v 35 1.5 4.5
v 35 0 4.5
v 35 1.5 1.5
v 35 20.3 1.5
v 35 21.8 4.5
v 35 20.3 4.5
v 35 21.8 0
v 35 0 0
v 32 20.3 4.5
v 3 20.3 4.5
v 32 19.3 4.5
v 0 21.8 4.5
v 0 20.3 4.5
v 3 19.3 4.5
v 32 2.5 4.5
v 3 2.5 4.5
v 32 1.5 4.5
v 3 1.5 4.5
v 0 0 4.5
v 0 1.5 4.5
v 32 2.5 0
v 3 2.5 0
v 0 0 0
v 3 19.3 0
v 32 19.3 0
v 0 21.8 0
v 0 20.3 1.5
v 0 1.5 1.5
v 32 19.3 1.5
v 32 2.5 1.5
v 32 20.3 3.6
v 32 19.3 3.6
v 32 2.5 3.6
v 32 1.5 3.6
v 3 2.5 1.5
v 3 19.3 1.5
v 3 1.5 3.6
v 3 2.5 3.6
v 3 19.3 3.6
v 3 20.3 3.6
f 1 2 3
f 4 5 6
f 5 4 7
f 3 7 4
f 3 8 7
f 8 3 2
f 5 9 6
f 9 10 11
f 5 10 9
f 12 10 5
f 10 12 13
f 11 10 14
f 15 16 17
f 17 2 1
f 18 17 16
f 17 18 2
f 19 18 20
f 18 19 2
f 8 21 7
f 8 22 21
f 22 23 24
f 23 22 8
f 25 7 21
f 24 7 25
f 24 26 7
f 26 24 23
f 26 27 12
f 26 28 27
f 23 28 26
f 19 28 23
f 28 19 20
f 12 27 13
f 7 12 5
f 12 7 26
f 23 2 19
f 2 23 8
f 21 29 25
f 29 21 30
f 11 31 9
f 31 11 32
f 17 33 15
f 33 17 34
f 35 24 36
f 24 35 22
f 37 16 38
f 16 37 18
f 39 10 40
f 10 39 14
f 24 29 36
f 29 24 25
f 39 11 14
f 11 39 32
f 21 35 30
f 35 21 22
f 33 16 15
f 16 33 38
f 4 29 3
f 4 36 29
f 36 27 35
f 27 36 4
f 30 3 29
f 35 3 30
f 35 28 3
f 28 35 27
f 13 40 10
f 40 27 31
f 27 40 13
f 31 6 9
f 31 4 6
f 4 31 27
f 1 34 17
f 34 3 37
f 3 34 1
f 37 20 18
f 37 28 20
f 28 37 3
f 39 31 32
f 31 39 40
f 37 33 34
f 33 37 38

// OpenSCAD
xx=35;
yy=18.8;
zz1=1.8;
zz2=4.5;

w=1.5;


module promini() {
    difference() {
        cube([xx,yy+2*w,zz2]);
        translate([3,2.5,0]) cube([xx-6,yy-2,10]);
        translate([0,w,w]) cube([2*w,yy,10]);
        translate([xx-2*w,w,w]) cube([2*w,yy,10]);
        #translate([0,w,w]) cube([xx,yy,zz1+.3]);
    }
    
}


promini();
